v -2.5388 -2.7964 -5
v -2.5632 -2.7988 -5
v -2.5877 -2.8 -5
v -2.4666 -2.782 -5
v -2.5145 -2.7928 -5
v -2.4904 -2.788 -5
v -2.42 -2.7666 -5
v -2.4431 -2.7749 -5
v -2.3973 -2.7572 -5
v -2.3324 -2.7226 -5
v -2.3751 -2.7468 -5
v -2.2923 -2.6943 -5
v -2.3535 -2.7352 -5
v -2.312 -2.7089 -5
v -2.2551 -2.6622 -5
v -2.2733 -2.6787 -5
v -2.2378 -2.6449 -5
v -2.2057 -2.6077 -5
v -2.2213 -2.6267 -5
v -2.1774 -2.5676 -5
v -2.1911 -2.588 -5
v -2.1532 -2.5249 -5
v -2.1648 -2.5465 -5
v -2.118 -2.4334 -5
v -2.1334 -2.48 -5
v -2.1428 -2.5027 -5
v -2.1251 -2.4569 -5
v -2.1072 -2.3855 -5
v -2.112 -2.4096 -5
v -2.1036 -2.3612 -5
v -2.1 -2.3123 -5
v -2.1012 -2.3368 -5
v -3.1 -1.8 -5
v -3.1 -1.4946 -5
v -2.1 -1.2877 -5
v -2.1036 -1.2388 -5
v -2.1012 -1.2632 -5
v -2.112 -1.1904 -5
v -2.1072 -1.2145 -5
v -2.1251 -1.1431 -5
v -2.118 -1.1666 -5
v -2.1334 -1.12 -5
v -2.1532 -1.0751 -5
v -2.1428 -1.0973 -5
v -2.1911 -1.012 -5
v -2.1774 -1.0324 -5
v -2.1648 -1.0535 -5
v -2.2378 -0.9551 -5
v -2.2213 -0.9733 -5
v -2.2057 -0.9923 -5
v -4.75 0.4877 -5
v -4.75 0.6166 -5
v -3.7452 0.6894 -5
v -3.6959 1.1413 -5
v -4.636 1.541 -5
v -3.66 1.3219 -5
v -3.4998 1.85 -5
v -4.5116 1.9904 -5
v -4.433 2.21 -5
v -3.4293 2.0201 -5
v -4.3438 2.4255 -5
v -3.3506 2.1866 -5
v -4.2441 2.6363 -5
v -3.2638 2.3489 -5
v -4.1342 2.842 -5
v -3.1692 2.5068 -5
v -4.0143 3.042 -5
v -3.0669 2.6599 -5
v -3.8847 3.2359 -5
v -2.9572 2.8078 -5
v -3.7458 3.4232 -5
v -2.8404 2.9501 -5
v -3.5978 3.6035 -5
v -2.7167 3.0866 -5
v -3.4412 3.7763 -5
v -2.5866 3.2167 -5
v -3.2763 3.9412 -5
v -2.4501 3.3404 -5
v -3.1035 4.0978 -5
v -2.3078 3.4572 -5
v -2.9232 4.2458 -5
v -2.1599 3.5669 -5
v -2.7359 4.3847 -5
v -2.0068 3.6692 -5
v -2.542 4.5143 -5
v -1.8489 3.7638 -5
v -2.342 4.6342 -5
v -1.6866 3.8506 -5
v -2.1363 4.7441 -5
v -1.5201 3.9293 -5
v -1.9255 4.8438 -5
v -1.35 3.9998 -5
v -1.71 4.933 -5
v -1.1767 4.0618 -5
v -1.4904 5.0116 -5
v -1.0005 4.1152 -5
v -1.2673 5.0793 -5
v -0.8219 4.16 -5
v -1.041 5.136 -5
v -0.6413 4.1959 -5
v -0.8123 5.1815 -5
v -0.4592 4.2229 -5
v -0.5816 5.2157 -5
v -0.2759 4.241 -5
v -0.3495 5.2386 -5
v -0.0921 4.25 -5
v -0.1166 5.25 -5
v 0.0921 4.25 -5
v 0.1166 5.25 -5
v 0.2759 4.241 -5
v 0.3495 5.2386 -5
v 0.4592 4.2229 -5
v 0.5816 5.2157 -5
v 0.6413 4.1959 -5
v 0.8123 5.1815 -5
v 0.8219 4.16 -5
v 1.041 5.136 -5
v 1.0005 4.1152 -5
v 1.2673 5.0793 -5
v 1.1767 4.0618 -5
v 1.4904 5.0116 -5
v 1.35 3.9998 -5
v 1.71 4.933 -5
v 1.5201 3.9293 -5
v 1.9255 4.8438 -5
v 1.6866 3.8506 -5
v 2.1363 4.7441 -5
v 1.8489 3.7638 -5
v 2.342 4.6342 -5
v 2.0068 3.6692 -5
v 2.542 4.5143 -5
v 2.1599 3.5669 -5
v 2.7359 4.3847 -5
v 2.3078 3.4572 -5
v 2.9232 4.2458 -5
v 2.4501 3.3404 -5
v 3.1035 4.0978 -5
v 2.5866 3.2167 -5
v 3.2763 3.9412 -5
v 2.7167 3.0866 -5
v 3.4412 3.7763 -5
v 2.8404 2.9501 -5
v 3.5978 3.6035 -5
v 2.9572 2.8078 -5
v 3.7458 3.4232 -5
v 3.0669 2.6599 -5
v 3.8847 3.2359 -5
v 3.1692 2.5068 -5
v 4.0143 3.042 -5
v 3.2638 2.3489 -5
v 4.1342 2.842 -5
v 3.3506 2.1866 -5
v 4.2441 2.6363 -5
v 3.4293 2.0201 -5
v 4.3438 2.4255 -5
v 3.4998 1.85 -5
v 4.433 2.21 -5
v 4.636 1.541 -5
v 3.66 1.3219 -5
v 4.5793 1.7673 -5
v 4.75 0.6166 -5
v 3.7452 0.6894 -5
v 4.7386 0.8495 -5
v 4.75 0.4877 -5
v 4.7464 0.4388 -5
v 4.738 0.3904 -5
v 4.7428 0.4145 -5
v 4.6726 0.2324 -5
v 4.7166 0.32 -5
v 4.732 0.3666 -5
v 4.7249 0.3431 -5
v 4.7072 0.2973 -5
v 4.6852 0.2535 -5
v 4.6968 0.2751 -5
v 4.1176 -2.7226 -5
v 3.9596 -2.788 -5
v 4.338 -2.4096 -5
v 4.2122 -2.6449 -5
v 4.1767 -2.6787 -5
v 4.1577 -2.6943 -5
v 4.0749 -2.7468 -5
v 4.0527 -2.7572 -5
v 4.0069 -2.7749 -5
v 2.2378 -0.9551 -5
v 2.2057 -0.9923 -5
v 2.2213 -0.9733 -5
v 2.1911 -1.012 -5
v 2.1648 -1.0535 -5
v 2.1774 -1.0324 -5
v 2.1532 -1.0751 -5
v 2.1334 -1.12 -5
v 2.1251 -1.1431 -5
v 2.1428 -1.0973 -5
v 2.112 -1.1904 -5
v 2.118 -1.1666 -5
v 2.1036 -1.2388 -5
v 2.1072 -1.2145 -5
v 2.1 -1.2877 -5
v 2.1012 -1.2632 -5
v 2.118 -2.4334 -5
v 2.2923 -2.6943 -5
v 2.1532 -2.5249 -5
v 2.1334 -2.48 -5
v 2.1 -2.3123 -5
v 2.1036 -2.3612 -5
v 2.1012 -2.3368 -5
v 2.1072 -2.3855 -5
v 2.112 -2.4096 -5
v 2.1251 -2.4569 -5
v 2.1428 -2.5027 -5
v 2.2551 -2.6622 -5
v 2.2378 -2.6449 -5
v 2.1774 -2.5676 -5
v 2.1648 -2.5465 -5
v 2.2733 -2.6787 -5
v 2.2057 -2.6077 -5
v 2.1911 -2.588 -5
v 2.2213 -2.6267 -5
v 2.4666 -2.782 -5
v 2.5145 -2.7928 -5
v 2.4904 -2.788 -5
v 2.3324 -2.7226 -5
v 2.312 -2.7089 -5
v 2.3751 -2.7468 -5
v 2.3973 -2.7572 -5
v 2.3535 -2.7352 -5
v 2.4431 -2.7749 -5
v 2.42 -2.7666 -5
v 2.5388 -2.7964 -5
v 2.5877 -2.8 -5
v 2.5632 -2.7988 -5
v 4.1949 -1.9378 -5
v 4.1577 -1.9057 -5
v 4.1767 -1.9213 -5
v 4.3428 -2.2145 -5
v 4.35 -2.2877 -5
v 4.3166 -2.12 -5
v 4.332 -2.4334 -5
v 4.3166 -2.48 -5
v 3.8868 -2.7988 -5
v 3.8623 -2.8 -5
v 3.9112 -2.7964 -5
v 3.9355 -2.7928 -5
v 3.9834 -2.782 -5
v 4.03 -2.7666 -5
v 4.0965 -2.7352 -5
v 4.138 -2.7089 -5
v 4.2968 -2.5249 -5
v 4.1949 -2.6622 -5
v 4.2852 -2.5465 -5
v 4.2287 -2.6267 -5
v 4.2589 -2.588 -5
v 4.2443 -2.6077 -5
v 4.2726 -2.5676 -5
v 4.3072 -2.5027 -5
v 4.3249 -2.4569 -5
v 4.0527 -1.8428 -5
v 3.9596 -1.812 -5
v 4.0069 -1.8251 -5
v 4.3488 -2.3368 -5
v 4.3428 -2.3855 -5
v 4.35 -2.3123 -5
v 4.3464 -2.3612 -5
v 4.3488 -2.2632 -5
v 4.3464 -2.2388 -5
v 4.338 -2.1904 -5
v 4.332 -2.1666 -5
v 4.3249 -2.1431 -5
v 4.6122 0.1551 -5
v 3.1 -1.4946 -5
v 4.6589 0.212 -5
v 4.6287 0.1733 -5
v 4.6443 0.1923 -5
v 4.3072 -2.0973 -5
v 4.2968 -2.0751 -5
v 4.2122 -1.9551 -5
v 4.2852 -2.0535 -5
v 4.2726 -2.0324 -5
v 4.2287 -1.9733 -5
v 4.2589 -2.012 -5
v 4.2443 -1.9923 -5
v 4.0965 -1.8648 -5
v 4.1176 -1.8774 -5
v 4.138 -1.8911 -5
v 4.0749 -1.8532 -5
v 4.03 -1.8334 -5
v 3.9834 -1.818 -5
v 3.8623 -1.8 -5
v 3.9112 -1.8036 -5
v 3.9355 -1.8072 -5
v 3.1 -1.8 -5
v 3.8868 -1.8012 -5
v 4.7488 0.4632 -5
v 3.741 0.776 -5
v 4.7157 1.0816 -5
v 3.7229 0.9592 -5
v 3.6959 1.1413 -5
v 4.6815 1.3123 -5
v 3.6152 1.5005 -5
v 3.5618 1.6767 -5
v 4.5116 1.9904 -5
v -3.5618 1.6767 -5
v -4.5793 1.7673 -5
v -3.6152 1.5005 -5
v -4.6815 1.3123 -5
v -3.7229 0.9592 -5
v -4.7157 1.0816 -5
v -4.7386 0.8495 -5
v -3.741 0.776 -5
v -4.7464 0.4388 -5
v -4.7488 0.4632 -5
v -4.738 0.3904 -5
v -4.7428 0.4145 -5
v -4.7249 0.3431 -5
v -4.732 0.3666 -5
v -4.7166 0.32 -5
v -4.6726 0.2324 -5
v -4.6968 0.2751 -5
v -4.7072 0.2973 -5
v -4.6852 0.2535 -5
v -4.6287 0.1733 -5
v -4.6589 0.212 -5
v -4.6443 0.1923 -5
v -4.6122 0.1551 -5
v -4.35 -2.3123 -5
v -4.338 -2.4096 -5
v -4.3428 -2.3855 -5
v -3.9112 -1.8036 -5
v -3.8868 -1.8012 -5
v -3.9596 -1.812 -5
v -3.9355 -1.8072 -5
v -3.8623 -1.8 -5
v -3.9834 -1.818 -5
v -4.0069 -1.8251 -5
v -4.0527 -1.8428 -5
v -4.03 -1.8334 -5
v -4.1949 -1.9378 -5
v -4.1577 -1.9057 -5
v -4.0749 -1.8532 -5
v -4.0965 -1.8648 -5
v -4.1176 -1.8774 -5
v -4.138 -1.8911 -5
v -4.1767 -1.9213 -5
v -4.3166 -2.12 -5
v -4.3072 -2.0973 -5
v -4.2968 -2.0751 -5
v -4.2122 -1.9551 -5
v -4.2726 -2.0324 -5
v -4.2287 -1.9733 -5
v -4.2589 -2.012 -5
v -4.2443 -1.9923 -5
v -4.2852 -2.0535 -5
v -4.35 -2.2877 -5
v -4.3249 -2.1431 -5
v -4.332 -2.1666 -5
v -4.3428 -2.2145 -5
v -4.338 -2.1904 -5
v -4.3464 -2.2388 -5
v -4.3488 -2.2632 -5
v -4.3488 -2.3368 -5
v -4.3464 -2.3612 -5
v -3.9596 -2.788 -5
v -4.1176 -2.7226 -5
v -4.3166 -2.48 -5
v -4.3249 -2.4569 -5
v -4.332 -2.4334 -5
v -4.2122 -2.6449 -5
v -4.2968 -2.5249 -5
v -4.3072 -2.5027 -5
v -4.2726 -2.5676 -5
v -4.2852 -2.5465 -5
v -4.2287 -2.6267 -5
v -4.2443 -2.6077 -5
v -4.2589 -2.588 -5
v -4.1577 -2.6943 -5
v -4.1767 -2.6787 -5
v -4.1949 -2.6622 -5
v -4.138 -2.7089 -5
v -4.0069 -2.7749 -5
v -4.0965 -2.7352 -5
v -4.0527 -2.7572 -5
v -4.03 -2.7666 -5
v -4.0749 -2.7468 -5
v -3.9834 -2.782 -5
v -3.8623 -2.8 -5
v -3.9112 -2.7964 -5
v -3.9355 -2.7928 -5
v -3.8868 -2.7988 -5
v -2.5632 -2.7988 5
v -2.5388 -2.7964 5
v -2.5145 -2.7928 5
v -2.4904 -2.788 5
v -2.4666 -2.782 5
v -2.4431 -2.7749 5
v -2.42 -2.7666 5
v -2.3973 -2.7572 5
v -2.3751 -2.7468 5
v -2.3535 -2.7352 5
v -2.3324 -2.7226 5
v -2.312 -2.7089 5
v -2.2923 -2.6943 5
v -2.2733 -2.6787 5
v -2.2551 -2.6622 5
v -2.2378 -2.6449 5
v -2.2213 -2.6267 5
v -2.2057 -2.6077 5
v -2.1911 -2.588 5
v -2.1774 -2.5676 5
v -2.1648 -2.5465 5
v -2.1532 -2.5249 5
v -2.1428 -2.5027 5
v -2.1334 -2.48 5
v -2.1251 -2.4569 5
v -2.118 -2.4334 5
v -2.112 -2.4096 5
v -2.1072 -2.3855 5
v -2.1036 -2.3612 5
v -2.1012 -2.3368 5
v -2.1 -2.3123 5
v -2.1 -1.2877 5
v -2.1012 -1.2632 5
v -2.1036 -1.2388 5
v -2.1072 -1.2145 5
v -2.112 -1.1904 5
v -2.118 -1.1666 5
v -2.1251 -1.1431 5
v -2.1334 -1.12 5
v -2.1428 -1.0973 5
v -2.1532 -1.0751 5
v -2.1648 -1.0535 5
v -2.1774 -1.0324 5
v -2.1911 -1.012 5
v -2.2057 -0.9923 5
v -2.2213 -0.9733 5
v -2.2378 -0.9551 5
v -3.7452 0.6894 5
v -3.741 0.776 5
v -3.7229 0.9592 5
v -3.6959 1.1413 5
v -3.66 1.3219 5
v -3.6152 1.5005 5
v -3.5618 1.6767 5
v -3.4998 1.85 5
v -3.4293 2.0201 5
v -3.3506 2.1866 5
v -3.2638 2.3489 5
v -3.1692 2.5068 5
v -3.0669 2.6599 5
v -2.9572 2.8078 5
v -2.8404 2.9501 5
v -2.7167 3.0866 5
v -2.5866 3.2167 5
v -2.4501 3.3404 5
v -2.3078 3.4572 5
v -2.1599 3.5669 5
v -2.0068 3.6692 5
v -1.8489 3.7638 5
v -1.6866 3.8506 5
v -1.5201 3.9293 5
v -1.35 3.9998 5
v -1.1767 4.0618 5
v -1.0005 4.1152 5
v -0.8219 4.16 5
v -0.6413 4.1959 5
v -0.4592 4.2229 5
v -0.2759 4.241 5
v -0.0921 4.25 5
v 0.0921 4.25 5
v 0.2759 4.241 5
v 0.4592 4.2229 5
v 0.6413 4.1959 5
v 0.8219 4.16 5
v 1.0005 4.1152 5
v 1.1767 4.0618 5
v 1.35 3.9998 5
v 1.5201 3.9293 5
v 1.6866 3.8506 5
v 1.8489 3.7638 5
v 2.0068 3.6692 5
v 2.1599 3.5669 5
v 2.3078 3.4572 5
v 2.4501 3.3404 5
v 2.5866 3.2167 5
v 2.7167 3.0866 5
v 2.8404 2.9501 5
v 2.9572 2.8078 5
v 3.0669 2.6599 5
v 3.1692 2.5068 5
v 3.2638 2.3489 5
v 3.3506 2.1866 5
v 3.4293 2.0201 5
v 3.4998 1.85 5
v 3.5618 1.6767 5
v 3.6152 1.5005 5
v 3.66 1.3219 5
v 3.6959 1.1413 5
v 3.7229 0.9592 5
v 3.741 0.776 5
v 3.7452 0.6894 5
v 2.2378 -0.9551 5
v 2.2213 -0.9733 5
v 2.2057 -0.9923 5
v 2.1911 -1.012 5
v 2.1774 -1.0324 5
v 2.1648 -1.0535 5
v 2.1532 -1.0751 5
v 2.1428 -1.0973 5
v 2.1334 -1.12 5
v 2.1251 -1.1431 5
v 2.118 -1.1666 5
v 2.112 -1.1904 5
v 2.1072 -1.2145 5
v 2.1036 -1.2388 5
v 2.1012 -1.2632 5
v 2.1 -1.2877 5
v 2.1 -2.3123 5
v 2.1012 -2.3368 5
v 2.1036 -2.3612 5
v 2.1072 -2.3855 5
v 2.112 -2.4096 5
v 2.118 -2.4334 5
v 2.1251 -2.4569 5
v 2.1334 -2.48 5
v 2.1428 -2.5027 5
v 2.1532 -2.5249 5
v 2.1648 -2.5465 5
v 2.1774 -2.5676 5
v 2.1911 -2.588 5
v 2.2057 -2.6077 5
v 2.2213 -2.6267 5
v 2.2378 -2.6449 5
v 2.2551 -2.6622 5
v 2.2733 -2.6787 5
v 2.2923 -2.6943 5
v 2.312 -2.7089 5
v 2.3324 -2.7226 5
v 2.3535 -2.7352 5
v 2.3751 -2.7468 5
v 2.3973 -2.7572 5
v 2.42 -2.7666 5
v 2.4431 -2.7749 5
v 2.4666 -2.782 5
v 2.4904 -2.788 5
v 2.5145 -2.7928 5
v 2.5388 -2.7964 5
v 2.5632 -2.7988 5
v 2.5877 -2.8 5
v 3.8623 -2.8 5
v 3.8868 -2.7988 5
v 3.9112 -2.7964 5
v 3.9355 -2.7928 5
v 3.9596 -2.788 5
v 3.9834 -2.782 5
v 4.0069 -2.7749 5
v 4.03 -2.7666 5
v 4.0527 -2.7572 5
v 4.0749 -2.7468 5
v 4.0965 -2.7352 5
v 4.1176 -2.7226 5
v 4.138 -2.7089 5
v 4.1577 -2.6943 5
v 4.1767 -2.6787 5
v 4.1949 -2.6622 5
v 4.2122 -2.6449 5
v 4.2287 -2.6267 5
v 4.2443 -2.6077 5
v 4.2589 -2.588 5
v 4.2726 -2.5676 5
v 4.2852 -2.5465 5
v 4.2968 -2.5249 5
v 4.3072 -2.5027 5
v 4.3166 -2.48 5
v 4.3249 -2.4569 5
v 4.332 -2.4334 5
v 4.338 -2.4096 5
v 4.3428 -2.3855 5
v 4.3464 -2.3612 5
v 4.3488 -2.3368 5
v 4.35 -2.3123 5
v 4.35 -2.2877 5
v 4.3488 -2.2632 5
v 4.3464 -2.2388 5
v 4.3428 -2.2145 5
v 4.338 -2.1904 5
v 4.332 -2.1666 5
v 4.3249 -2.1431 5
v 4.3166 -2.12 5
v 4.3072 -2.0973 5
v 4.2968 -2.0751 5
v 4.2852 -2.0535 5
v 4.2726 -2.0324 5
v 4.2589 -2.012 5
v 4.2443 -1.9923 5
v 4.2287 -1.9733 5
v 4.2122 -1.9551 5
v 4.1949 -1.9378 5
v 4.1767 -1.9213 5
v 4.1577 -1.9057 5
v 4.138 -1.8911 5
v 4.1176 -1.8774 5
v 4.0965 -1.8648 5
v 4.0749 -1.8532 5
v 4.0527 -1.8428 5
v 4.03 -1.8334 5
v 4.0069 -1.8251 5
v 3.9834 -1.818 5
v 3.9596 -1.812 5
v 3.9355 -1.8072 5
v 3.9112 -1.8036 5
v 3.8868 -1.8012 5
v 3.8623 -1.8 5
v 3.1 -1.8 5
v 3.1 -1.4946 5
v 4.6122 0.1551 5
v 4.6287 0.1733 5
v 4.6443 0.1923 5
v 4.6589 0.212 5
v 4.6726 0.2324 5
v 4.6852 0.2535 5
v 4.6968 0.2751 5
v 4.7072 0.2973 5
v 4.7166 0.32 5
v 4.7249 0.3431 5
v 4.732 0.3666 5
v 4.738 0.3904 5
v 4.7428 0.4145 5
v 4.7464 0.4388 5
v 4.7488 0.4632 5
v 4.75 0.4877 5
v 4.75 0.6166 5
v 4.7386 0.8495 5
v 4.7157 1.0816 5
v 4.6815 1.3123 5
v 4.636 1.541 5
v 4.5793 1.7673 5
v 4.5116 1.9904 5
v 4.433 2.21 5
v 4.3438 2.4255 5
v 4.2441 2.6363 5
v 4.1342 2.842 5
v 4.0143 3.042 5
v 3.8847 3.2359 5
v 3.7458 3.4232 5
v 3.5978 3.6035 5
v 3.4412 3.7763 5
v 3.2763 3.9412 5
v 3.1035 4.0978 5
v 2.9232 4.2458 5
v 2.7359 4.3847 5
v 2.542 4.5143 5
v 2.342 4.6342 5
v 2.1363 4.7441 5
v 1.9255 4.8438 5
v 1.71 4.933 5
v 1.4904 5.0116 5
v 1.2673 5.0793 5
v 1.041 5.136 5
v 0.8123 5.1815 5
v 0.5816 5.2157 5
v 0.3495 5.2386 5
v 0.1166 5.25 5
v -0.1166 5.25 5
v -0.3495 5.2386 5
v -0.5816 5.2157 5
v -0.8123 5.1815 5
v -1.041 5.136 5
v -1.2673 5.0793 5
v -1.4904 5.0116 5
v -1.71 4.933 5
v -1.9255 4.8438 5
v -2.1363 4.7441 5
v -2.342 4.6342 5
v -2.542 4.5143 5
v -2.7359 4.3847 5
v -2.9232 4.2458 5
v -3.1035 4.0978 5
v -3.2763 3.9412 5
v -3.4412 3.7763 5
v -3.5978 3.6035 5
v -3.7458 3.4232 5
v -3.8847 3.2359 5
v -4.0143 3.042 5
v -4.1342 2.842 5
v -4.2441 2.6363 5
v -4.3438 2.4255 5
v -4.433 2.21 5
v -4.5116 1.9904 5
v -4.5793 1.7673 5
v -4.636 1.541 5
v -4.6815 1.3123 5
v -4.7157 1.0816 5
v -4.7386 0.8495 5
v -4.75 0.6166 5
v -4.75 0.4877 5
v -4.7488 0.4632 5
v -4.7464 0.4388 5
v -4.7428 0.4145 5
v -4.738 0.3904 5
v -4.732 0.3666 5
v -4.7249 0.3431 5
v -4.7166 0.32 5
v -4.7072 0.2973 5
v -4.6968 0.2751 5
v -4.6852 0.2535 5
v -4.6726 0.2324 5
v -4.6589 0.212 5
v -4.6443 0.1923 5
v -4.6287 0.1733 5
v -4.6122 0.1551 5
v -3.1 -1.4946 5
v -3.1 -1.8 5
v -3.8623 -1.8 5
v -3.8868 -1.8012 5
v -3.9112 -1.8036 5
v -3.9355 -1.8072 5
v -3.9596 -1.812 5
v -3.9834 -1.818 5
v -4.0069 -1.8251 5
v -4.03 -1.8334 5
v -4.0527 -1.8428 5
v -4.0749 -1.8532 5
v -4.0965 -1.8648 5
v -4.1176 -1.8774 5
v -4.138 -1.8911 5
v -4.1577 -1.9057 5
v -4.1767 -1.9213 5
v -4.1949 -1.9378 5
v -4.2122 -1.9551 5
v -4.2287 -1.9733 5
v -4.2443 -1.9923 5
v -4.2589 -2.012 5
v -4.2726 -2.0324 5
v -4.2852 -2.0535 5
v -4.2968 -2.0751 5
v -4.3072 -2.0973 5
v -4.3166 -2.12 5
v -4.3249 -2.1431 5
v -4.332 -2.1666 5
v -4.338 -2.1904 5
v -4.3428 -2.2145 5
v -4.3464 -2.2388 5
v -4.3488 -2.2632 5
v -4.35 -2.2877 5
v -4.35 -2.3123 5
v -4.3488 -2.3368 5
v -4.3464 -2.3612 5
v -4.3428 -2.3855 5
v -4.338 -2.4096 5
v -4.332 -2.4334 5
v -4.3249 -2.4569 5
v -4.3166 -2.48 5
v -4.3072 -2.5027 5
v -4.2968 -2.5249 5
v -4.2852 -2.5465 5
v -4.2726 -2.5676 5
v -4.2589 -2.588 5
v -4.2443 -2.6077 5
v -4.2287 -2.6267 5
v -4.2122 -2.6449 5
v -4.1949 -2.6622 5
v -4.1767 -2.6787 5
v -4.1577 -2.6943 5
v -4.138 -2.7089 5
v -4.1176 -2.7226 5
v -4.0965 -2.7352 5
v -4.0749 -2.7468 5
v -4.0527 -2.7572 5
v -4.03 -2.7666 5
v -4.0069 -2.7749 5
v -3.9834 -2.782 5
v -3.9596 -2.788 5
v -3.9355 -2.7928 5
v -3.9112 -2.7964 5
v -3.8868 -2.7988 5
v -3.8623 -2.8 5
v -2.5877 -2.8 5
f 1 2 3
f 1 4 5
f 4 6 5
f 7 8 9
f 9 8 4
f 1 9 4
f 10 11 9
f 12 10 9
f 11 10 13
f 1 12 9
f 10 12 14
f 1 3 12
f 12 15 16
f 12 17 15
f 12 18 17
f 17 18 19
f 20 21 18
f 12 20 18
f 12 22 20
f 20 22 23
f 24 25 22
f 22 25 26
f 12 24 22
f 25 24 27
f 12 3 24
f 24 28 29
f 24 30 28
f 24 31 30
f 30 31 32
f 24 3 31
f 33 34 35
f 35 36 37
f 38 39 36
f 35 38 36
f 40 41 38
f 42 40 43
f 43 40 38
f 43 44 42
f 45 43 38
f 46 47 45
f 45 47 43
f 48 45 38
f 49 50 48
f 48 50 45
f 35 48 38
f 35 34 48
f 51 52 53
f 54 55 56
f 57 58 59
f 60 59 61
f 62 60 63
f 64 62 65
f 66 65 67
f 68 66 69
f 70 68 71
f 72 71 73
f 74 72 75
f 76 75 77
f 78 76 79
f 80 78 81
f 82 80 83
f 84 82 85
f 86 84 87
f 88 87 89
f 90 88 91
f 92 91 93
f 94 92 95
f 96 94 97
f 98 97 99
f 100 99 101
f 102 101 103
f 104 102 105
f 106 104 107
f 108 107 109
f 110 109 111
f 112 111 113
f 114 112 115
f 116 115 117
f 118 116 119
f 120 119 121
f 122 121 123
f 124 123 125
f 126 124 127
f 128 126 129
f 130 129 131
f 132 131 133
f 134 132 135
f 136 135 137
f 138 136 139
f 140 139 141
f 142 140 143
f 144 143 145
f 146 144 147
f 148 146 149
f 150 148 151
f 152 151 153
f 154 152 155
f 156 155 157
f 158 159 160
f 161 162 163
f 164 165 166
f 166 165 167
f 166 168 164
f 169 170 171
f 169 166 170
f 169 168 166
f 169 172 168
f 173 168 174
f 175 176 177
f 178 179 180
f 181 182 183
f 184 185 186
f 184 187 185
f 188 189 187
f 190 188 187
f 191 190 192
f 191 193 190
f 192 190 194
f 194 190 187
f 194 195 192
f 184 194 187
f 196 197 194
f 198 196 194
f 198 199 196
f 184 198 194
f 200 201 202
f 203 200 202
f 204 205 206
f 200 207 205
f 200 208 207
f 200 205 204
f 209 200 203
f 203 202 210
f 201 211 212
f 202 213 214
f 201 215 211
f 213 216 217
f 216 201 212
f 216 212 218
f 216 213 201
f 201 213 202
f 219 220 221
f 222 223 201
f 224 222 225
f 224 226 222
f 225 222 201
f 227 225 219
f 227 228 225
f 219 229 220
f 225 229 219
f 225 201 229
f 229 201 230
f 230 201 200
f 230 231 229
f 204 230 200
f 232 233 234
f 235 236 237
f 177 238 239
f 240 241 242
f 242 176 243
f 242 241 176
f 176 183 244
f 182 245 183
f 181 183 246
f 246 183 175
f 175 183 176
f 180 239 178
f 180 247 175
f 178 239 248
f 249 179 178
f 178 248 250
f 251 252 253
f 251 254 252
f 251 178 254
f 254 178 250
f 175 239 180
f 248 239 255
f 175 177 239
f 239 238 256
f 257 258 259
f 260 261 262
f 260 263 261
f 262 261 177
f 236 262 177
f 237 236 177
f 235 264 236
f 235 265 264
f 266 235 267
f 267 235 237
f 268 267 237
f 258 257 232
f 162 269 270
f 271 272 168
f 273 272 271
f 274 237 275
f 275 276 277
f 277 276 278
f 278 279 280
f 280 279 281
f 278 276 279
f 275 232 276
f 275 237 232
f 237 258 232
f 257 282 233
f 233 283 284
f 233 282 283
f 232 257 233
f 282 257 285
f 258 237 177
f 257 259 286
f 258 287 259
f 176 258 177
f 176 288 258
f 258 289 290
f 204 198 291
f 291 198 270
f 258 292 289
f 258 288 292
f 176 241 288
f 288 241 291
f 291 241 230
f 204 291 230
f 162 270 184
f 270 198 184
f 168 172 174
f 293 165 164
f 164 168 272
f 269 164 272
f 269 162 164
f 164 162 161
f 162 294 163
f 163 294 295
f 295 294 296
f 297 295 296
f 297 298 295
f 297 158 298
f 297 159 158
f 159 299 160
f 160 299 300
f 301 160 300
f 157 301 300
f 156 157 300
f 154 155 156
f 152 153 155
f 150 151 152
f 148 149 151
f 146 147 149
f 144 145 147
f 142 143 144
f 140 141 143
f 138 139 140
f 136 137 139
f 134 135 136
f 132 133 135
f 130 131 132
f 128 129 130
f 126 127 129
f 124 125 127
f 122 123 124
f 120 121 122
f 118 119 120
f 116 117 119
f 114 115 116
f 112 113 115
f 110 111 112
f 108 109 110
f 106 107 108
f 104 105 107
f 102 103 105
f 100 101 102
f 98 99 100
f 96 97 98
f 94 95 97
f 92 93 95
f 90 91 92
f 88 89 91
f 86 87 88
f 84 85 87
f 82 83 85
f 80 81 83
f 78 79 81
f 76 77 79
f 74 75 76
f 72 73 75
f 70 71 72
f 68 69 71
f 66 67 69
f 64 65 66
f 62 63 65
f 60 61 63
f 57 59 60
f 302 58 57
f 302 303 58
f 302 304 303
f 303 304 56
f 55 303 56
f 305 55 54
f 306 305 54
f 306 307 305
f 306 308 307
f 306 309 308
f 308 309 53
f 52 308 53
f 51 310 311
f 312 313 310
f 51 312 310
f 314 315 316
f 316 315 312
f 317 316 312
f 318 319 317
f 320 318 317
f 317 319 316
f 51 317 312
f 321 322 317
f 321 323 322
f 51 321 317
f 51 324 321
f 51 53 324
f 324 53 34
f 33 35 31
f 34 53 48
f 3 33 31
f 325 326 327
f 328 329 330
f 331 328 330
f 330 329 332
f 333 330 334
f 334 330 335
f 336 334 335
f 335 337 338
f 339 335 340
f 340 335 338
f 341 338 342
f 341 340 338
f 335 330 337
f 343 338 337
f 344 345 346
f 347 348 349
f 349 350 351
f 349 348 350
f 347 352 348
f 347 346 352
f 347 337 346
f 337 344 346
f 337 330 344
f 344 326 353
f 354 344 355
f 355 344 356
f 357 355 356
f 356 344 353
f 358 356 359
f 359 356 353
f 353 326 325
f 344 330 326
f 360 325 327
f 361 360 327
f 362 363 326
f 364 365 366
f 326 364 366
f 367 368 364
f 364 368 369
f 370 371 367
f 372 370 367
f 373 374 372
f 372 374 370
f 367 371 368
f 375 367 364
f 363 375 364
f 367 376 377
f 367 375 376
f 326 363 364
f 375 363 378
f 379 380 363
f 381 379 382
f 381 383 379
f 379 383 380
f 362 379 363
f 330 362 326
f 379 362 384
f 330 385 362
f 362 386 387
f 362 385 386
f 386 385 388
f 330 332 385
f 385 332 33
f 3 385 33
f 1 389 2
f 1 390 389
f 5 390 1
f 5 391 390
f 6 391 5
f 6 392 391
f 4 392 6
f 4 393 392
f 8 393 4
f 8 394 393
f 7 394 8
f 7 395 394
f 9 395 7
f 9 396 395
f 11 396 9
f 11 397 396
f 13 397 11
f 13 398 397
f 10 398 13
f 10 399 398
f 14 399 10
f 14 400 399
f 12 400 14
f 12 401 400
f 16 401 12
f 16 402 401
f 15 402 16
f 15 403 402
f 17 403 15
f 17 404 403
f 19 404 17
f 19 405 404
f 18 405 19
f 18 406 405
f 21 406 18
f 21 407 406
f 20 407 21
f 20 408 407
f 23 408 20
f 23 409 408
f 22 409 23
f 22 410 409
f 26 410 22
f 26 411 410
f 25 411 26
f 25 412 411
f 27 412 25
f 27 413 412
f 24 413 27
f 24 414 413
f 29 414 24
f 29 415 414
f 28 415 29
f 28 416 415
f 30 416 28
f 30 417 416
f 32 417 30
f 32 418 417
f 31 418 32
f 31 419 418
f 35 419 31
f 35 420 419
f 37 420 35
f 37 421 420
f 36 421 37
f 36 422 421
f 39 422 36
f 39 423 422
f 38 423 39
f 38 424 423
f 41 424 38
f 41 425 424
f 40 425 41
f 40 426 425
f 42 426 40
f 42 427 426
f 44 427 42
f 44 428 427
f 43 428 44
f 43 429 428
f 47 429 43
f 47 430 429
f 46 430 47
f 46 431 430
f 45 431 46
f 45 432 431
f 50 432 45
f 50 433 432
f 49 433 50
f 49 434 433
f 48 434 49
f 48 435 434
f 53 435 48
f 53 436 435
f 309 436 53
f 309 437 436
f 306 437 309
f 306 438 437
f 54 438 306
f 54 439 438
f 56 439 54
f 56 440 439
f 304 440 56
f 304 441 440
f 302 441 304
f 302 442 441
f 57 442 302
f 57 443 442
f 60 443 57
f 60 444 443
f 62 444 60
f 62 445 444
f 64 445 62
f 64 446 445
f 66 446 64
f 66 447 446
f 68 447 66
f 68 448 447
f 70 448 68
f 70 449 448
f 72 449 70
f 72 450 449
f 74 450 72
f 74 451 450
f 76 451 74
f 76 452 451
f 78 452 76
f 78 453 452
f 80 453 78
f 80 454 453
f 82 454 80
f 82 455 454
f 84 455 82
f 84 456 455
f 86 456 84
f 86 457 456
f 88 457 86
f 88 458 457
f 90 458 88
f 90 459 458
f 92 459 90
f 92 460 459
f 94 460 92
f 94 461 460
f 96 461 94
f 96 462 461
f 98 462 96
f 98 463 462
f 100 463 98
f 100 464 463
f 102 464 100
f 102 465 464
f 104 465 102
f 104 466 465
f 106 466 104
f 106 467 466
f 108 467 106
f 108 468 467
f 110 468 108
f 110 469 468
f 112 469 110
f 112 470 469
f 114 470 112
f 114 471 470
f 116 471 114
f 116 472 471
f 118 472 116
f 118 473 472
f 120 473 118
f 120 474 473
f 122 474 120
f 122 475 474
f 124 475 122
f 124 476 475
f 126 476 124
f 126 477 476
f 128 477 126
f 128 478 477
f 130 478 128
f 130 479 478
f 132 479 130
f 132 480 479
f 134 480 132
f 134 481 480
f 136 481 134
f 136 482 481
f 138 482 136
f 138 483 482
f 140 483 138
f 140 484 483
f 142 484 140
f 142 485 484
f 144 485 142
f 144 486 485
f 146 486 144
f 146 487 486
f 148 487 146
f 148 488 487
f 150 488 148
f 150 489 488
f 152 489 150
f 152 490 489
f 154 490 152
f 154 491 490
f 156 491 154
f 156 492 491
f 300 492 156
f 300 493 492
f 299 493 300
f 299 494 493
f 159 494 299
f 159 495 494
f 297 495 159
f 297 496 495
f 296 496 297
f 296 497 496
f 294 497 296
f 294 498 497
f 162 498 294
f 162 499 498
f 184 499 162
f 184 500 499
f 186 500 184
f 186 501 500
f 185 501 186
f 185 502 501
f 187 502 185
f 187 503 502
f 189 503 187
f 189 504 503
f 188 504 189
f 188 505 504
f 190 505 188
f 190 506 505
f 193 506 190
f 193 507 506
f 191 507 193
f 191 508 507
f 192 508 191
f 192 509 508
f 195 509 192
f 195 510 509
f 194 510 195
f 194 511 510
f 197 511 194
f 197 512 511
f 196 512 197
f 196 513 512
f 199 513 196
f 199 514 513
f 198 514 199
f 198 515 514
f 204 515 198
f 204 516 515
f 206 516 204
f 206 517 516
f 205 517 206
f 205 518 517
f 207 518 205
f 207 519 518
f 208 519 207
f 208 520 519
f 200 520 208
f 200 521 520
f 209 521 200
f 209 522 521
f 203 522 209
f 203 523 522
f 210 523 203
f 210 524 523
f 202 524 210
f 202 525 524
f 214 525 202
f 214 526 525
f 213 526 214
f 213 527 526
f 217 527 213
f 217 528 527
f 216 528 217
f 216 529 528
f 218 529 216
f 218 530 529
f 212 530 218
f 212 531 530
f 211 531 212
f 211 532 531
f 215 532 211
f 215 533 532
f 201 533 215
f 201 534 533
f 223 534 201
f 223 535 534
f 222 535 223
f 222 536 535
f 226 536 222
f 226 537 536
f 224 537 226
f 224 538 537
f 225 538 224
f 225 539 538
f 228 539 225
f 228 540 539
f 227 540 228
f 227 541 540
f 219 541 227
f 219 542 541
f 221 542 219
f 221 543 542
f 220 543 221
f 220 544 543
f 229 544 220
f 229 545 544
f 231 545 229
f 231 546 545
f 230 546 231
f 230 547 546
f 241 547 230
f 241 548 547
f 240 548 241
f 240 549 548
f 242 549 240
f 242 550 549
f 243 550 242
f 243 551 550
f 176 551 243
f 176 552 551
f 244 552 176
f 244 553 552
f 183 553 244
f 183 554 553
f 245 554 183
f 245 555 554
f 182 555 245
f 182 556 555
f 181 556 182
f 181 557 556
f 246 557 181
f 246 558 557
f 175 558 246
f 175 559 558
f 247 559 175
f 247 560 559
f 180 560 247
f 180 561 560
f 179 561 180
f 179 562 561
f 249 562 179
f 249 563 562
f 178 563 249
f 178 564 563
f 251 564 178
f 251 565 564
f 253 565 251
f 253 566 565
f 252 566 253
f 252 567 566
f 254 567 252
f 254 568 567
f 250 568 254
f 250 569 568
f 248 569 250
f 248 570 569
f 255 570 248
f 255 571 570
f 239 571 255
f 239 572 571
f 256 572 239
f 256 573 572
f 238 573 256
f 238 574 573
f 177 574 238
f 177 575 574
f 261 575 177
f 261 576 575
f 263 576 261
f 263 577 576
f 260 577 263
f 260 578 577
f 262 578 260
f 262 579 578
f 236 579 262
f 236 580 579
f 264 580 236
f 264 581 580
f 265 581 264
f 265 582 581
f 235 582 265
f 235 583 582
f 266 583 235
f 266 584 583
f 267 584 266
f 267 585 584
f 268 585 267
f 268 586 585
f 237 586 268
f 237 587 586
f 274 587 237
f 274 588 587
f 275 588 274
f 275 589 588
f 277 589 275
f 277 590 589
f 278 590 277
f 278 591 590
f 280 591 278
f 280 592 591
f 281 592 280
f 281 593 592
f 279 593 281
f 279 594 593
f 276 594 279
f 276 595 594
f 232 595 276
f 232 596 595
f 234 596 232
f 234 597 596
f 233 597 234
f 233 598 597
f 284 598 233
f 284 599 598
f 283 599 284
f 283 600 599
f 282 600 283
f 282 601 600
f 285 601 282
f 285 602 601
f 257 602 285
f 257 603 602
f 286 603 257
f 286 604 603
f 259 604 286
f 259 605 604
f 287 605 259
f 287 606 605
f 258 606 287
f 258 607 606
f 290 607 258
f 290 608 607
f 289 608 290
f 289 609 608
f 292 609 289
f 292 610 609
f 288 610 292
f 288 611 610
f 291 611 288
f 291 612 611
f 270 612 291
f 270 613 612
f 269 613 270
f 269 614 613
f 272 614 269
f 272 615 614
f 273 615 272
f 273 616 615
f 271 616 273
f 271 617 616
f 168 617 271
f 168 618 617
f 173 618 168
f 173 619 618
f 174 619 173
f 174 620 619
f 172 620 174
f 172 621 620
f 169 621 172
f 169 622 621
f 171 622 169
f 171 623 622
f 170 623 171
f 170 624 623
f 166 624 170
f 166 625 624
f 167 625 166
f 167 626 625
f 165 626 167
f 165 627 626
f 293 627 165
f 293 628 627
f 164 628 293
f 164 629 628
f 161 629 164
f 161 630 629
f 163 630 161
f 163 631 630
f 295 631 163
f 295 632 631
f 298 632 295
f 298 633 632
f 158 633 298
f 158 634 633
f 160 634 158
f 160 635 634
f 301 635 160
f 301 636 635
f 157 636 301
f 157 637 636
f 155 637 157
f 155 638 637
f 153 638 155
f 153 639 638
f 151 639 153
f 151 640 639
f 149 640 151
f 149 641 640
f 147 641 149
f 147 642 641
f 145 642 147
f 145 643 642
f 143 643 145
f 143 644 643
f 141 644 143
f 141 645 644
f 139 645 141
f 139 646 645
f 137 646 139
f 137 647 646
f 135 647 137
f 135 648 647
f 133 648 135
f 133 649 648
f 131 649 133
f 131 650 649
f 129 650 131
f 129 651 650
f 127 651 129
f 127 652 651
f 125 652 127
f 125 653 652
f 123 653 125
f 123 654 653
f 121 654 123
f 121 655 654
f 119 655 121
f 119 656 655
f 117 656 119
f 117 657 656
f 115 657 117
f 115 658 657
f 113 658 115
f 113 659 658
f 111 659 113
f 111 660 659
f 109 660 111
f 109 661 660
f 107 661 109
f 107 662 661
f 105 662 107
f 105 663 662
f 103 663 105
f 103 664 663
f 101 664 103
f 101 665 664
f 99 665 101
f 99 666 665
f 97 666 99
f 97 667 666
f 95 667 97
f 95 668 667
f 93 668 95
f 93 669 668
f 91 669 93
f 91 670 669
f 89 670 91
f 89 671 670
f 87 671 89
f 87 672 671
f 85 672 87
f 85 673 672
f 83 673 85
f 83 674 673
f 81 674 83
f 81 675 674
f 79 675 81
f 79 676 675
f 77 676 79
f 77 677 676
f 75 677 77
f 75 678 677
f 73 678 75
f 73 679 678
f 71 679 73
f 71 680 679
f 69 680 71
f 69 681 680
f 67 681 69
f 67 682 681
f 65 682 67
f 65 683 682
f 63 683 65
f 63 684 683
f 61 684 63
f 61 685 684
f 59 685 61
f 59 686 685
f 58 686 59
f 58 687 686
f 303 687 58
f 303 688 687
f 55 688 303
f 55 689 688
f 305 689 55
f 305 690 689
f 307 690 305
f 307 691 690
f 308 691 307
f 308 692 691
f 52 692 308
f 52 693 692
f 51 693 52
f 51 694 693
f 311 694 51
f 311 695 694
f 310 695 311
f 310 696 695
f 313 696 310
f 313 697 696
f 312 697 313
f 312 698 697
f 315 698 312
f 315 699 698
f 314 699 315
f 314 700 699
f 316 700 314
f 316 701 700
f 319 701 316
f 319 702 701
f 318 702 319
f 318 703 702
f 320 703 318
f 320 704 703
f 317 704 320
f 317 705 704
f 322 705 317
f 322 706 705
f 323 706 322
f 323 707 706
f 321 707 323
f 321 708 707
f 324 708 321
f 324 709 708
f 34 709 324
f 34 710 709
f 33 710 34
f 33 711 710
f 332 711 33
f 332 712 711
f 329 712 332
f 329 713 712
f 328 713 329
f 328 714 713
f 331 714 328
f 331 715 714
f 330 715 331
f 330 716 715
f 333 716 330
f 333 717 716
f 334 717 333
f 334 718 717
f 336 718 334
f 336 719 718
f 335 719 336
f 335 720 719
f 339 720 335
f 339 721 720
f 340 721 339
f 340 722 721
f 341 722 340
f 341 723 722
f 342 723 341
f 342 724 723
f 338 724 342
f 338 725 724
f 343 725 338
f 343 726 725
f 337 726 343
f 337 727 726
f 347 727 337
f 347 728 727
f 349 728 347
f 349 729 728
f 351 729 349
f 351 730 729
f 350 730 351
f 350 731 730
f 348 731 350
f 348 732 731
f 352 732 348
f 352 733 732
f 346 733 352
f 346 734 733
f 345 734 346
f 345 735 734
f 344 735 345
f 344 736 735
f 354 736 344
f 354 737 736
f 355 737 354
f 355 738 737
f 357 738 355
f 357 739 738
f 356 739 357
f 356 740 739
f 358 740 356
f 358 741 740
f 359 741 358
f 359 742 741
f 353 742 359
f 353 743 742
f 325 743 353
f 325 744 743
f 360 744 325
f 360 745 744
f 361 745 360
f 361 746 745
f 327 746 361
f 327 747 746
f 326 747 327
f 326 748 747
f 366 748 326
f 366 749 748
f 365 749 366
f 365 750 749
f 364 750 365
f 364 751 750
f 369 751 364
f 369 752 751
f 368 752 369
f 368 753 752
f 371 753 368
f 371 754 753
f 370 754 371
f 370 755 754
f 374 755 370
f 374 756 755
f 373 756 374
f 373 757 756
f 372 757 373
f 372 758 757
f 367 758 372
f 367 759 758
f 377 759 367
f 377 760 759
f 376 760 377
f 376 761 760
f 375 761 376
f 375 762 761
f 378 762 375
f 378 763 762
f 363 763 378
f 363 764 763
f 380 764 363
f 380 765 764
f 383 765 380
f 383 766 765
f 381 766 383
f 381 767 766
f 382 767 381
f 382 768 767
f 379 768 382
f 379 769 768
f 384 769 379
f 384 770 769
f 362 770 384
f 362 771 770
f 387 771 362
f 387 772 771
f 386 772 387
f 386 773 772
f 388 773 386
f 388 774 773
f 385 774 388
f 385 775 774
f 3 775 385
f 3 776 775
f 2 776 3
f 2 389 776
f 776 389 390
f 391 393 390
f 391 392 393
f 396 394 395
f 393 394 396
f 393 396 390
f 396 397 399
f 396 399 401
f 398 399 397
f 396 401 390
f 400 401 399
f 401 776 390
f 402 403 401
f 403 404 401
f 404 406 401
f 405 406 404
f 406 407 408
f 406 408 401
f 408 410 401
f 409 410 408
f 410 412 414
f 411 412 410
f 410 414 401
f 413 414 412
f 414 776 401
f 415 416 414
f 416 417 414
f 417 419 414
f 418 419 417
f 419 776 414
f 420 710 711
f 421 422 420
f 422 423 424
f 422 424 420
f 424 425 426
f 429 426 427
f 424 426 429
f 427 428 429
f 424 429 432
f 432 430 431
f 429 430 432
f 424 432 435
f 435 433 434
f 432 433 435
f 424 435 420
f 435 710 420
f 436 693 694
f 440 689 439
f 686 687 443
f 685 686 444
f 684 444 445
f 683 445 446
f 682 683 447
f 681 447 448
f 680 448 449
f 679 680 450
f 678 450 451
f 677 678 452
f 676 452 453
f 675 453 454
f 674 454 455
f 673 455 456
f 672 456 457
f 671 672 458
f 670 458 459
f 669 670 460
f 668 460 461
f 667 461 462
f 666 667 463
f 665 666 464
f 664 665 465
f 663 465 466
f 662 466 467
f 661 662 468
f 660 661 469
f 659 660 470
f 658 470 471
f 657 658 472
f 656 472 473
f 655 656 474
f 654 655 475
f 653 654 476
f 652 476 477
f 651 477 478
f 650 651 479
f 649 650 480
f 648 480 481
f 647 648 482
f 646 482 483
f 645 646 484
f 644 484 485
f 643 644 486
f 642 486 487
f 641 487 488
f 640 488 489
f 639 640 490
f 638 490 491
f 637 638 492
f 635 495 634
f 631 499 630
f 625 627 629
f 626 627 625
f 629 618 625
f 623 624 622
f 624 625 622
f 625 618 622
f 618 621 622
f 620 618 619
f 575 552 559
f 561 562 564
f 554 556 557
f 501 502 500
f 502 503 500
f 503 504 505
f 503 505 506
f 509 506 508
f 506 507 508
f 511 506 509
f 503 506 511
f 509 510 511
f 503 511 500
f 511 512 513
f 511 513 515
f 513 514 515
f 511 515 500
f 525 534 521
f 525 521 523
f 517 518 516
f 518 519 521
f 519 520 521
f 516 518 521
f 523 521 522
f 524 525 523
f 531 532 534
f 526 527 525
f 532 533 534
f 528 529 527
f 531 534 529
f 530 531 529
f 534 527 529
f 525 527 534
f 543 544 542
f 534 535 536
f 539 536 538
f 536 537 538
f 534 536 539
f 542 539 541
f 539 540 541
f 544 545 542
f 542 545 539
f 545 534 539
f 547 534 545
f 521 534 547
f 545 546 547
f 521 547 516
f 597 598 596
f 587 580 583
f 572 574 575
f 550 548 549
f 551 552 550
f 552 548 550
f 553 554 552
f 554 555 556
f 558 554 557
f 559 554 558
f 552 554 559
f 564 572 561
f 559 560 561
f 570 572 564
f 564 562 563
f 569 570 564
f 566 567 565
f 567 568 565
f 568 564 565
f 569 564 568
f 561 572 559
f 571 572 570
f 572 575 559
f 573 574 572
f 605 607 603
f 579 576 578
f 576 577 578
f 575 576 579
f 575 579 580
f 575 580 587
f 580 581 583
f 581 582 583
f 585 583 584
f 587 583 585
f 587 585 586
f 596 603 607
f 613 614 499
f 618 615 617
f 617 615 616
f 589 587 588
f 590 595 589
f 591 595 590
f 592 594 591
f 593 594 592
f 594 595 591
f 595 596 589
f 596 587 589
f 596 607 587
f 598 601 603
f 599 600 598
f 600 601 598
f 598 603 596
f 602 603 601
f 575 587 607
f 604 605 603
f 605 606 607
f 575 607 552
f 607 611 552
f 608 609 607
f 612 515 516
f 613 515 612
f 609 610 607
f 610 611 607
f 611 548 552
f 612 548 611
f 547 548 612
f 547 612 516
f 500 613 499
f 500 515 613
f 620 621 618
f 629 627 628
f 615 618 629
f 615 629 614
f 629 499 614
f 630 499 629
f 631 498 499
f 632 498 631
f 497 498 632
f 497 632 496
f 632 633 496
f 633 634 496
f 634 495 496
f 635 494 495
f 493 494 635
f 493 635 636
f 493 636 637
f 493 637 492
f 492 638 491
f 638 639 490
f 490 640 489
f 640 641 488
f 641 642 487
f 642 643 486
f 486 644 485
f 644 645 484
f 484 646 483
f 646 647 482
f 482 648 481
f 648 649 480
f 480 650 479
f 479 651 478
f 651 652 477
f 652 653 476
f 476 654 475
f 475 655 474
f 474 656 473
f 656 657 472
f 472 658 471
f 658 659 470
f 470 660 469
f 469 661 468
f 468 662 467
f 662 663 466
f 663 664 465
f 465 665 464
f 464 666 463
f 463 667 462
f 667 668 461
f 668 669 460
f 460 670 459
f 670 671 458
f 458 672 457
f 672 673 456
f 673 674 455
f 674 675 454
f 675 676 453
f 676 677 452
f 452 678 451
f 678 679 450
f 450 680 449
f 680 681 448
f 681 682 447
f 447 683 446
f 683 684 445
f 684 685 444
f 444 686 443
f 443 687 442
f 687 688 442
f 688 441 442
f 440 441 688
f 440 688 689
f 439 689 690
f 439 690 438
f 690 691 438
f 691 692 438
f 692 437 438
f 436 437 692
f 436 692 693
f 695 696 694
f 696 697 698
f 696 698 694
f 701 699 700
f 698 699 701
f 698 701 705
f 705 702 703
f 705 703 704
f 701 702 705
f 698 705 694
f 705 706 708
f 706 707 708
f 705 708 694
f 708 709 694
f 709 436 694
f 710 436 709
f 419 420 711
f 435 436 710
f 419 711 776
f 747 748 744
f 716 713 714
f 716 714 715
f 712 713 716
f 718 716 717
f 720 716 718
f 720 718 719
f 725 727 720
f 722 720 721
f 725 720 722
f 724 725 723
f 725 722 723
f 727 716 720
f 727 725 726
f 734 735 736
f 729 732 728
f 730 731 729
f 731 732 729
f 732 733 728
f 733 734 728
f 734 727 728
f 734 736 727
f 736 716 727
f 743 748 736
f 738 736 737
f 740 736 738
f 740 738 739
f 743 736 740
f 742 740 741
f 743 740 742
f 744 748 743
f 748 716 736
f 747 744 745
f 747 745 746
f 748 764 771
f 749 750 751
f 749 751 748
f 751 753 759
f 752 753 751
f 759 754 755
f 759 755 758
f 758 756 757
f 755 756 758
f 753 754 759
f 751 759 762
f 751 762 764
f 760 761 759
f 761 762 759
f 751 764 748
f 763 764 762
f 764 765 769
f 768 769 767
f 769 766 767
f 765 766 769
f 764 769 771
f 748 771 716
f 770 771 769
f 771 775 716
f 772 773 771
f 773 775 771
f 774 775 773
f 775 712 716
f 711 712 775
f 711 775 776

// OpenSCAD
// file: ../extrusion-clip.scad
include <lumpyscad/lib.scad>;

resolution = 128;
extrusion_width = 0.5;
wall_thickness = 1;
tolerance = 0.2;

module extrusion_clip_profile_arrow(opening_height = 4,opening_width = 8) {
  overall_height = opening_height+wall_thickness*2;
  overall_width = v_slot_opening+opening_width + wall_thickness;
  prong_length = v_slot_cavity_depth-tolerance*2;
  //length_behind_extrusion = (v_slot_opening_behind_slot_width-v_slot_opening)/2-tolerance;
  length_behind_extrusion = 1.75;
  echo("length_behind_extrusion: ", length_behind_extrusion);
  module body() {
    for(y=[front,rear]) {
      mirror([0,y-1,0]) {
        // angled retainer
        hull() {
          translate([0,v_slot_opening/2-wall_thickness/2,0]) {
            translate([-v_slot_cavity_depth+wall_thickness/2+tolerance,0,0]) {
              accurate_circle(wall_thickness,resolution);
            }
            translate([-v_slot_depth-wall_thickness/2-tolerance,0,0]) {
              accurate_circle(wall_thickness,resolution);
            }
          }
          translate([-v_slot_depth-wall_thickness/2-tolerance,v_slot_opening/2+length_behind_extrusion-wall_thickness/2,0]) {
            accurate_circle(wall_thickness,resolution);
          }
        }

        // retainer arms
        translate([-v_slot_depth,v_slot_opening/2-wall_thickness/2,0]) {
          square([v_slot_depth*2+0.1,wall_thickness],center=true);
        }
      }
    }

    // end cap

    // longer/outer arm & co
    translate([-wall_thickness+overall_height/2,-v_slot_opening/2+wall_thickness/2,0]) {
      rounded_square(overall_height+wall_thickness*2,wall_thickness,wall_thickness,resolution);
    }
    translate([overall_height-wall_thickness/2,-v_slot_opening/2+overall_width/2,0]) {
      rounded_square(wall_thickness,overall_width,wall_thickness,resolution);
    }

    // shorter/inner arm & co
    short_arm_length = opening_height+wall_thickness-tolerance;
    translate([-wall_thickness+short_arm_length/2,v_slot_opening/2-wall_thickness/2,0]) {
      rounded_square(short_arm_length+wall_thickness*2,wall_thickness,wall_thickness,resolution);
    }
    translate([wall_thickness/2,v_slot_opening/2+opening_width/2,0]) {
      rounded_square(wall_thickness,opening_width+wall_thickness*2,wall_thickness,resolution);
    }

    // end cap
    translate([overall_height/2,-v_slot_opening/2+overall_width-wall_thickness/2,0]) {
      rounded_square(overall_height,wall_thickness,wall_thickness,resolution);
    }
    /*
    translate([short_arm_length-wall_thickness/2,v_slot_opening/2+tolerance/2,0]) {
      rounded_square(wall_thickness,wall_thickness*2+tolerance,wall_thickness,resolution);
    }
    translate([short_arm_length/2,v_slot_opening/2+wall_thickness/2+tolerance,0]) {
      rounded_square(short_arm_length,wall_thickness,wall_thickness,resolution);
    }
    */

    hull() {
     
      
    }
  }

  module holes() {
    
  }
  
  difference() {
    body();
    holes();
  }
}

module extrusion_clip_profile_minimal(opening_height = 4,opening_width = 8) {
  overall_height = opening_height+wall_thickness*2;
  overall_width = v_slot_opening+opening_width + wall_thickness;
  prong_length = v_slot_cavity_depth-tolerance*2;
  //length_behind_extrusion = (v_slot_opening_behind_slot_width-v_slot_opening)/2-tolerance;
  length_behind_extrusion = 1.25;
  room_for_extrusion_sharp = 0;

  module body() {
    for(x=[left,right]) {
      mirror([x-1,0,0]) {
        translate([-v_slot_opening/2-length_behind_extrusion/2+wall_thickness/2,-v_slot_depth-wall_thickness/2,0]) {
          rounded_square(length_behind_extrusion+wall_thickness,wall_thickness,wall_thickness,resolution);
        }
        translate([-v_slot_opening/2+wall_thickness/2,-v_slot_depth+room_for_extrusion_sharp/2,0]) {
          rounded_square(wall_thickness,wall_thickness*2+room_for_extrusion_sharp,wall_thickness,resolution);
        }
        hull() {
          translate([-v_slot_opening/2+wall_thickness/2,-v_slot_depth+room_for_extrusion_sharp+wall_thickness/2,0]) {
            accurate_circle(wall_thickness,resolution);
          }
          translate([-v_slot_width/2+wall_thickness/2,wall_thickness/2,0]) {
            accurate_circle(wall_thickness,resolution);
          }
        }
      }
    }
  }

  module holes() {
    
  }
  
  difference() {
    body();
    holes();
  }
}

module extrusion_clip_wiring_holder(opening_height = 4,opening_width = 8) {
  overall_height = opening_height+wall_thickness*2;
  overall_width = v_slot_width+opening_width + wall_thickness;

  module body() {
    extrusion_clip_profile_minimal();

    /*
    translate([0,wall_thickness/2,0]) {
      difference() {
        accurate_circle(v_slot_width,resolution);
        accurate_circle(v_slot_width-wall_thickness*2,resolution);
        translate([0,-v_slot_width/2,0]) {
          square([v_slot_width*2,v_slot_width],center=true);
        }
      }
    }
    */

    guard_height = overall_height-wall_thickness-tolerance;
    translate([-v_slot_width/2+wall_thickness/2,guard_height/2,0]) {
      rounded_square(wall_thickness,guard_height,wall_thickness,resolution);
    }
    translate([-v_slot_width/2-opening_width/2,wall_thickness/2,0]) {
      rounded_square(opening_width+wall_thickness*2,wall_thickness,wall_thickness,resolution);
    }

    translate([v_slot_width/2-wall_thickness/2,overall_height/2,0]) {
      rounded_square(wall_thickness,overall_height,wall_thickness,resolution);
    }
    translate([v_slot_width/2-overall_width/2,overall_height-wall_thickness/2,0]) {
      rounded_square(overall_width,wall_thickness,wall_thickness,resolution);
    }

    translate([v_slot_width/2-overall_width+wall_thickness/2,overall_height/2,0]) {
      rounded_square(wall_thickness,overall_height,wall_thickness,resolution);
    }
  }

  module holes() {
  }

  difference() {
    body();
    holes();
  }
}

module extrusion_wiring_retainer() {
  module body() {
    extrusion_clip_profile_minimal();

    translate([0,wall_thickness/2,0]) {
      difference() {
        accurate_circle(v_slot_width,resolution);
        accurate_circle(v_slot_width-wall_thickness*2,resolution);
        translate([0,-v_slot_width/2,0]) {
          square([v_slot_width*2,v_slot_width],center=true);
        }
      }
    }
  }

  module holes() {
  }

  difference() {
    body();
    holes();
  }
}

% translate([0,-20/2,0]) {
  extrusion_2020_profile();
}

linear_extrude(height=0.1) {
  //extrusion_clip_profile_minimal();
  extrusion_clip_wiring_holder();
}

translate([-20/2,-20/2,0]) {
  rotate([0,0,90]) {
    linear_extrude(height=0.1) {
      extrusion_wiring_retainer();
    }
  }
}

translate([20/2,-20/2,0]) {
  color("grey", 0.1) {
    linear_extrude(height=0.1) {
      extrusion_clip_profile_arrow();
    }
  }
}
// main file
use <../extrusion-clip.scad>;

linear_extrude(height=10,center=true,convexity=3) {
  extrusion_wiring_retainer();
}
